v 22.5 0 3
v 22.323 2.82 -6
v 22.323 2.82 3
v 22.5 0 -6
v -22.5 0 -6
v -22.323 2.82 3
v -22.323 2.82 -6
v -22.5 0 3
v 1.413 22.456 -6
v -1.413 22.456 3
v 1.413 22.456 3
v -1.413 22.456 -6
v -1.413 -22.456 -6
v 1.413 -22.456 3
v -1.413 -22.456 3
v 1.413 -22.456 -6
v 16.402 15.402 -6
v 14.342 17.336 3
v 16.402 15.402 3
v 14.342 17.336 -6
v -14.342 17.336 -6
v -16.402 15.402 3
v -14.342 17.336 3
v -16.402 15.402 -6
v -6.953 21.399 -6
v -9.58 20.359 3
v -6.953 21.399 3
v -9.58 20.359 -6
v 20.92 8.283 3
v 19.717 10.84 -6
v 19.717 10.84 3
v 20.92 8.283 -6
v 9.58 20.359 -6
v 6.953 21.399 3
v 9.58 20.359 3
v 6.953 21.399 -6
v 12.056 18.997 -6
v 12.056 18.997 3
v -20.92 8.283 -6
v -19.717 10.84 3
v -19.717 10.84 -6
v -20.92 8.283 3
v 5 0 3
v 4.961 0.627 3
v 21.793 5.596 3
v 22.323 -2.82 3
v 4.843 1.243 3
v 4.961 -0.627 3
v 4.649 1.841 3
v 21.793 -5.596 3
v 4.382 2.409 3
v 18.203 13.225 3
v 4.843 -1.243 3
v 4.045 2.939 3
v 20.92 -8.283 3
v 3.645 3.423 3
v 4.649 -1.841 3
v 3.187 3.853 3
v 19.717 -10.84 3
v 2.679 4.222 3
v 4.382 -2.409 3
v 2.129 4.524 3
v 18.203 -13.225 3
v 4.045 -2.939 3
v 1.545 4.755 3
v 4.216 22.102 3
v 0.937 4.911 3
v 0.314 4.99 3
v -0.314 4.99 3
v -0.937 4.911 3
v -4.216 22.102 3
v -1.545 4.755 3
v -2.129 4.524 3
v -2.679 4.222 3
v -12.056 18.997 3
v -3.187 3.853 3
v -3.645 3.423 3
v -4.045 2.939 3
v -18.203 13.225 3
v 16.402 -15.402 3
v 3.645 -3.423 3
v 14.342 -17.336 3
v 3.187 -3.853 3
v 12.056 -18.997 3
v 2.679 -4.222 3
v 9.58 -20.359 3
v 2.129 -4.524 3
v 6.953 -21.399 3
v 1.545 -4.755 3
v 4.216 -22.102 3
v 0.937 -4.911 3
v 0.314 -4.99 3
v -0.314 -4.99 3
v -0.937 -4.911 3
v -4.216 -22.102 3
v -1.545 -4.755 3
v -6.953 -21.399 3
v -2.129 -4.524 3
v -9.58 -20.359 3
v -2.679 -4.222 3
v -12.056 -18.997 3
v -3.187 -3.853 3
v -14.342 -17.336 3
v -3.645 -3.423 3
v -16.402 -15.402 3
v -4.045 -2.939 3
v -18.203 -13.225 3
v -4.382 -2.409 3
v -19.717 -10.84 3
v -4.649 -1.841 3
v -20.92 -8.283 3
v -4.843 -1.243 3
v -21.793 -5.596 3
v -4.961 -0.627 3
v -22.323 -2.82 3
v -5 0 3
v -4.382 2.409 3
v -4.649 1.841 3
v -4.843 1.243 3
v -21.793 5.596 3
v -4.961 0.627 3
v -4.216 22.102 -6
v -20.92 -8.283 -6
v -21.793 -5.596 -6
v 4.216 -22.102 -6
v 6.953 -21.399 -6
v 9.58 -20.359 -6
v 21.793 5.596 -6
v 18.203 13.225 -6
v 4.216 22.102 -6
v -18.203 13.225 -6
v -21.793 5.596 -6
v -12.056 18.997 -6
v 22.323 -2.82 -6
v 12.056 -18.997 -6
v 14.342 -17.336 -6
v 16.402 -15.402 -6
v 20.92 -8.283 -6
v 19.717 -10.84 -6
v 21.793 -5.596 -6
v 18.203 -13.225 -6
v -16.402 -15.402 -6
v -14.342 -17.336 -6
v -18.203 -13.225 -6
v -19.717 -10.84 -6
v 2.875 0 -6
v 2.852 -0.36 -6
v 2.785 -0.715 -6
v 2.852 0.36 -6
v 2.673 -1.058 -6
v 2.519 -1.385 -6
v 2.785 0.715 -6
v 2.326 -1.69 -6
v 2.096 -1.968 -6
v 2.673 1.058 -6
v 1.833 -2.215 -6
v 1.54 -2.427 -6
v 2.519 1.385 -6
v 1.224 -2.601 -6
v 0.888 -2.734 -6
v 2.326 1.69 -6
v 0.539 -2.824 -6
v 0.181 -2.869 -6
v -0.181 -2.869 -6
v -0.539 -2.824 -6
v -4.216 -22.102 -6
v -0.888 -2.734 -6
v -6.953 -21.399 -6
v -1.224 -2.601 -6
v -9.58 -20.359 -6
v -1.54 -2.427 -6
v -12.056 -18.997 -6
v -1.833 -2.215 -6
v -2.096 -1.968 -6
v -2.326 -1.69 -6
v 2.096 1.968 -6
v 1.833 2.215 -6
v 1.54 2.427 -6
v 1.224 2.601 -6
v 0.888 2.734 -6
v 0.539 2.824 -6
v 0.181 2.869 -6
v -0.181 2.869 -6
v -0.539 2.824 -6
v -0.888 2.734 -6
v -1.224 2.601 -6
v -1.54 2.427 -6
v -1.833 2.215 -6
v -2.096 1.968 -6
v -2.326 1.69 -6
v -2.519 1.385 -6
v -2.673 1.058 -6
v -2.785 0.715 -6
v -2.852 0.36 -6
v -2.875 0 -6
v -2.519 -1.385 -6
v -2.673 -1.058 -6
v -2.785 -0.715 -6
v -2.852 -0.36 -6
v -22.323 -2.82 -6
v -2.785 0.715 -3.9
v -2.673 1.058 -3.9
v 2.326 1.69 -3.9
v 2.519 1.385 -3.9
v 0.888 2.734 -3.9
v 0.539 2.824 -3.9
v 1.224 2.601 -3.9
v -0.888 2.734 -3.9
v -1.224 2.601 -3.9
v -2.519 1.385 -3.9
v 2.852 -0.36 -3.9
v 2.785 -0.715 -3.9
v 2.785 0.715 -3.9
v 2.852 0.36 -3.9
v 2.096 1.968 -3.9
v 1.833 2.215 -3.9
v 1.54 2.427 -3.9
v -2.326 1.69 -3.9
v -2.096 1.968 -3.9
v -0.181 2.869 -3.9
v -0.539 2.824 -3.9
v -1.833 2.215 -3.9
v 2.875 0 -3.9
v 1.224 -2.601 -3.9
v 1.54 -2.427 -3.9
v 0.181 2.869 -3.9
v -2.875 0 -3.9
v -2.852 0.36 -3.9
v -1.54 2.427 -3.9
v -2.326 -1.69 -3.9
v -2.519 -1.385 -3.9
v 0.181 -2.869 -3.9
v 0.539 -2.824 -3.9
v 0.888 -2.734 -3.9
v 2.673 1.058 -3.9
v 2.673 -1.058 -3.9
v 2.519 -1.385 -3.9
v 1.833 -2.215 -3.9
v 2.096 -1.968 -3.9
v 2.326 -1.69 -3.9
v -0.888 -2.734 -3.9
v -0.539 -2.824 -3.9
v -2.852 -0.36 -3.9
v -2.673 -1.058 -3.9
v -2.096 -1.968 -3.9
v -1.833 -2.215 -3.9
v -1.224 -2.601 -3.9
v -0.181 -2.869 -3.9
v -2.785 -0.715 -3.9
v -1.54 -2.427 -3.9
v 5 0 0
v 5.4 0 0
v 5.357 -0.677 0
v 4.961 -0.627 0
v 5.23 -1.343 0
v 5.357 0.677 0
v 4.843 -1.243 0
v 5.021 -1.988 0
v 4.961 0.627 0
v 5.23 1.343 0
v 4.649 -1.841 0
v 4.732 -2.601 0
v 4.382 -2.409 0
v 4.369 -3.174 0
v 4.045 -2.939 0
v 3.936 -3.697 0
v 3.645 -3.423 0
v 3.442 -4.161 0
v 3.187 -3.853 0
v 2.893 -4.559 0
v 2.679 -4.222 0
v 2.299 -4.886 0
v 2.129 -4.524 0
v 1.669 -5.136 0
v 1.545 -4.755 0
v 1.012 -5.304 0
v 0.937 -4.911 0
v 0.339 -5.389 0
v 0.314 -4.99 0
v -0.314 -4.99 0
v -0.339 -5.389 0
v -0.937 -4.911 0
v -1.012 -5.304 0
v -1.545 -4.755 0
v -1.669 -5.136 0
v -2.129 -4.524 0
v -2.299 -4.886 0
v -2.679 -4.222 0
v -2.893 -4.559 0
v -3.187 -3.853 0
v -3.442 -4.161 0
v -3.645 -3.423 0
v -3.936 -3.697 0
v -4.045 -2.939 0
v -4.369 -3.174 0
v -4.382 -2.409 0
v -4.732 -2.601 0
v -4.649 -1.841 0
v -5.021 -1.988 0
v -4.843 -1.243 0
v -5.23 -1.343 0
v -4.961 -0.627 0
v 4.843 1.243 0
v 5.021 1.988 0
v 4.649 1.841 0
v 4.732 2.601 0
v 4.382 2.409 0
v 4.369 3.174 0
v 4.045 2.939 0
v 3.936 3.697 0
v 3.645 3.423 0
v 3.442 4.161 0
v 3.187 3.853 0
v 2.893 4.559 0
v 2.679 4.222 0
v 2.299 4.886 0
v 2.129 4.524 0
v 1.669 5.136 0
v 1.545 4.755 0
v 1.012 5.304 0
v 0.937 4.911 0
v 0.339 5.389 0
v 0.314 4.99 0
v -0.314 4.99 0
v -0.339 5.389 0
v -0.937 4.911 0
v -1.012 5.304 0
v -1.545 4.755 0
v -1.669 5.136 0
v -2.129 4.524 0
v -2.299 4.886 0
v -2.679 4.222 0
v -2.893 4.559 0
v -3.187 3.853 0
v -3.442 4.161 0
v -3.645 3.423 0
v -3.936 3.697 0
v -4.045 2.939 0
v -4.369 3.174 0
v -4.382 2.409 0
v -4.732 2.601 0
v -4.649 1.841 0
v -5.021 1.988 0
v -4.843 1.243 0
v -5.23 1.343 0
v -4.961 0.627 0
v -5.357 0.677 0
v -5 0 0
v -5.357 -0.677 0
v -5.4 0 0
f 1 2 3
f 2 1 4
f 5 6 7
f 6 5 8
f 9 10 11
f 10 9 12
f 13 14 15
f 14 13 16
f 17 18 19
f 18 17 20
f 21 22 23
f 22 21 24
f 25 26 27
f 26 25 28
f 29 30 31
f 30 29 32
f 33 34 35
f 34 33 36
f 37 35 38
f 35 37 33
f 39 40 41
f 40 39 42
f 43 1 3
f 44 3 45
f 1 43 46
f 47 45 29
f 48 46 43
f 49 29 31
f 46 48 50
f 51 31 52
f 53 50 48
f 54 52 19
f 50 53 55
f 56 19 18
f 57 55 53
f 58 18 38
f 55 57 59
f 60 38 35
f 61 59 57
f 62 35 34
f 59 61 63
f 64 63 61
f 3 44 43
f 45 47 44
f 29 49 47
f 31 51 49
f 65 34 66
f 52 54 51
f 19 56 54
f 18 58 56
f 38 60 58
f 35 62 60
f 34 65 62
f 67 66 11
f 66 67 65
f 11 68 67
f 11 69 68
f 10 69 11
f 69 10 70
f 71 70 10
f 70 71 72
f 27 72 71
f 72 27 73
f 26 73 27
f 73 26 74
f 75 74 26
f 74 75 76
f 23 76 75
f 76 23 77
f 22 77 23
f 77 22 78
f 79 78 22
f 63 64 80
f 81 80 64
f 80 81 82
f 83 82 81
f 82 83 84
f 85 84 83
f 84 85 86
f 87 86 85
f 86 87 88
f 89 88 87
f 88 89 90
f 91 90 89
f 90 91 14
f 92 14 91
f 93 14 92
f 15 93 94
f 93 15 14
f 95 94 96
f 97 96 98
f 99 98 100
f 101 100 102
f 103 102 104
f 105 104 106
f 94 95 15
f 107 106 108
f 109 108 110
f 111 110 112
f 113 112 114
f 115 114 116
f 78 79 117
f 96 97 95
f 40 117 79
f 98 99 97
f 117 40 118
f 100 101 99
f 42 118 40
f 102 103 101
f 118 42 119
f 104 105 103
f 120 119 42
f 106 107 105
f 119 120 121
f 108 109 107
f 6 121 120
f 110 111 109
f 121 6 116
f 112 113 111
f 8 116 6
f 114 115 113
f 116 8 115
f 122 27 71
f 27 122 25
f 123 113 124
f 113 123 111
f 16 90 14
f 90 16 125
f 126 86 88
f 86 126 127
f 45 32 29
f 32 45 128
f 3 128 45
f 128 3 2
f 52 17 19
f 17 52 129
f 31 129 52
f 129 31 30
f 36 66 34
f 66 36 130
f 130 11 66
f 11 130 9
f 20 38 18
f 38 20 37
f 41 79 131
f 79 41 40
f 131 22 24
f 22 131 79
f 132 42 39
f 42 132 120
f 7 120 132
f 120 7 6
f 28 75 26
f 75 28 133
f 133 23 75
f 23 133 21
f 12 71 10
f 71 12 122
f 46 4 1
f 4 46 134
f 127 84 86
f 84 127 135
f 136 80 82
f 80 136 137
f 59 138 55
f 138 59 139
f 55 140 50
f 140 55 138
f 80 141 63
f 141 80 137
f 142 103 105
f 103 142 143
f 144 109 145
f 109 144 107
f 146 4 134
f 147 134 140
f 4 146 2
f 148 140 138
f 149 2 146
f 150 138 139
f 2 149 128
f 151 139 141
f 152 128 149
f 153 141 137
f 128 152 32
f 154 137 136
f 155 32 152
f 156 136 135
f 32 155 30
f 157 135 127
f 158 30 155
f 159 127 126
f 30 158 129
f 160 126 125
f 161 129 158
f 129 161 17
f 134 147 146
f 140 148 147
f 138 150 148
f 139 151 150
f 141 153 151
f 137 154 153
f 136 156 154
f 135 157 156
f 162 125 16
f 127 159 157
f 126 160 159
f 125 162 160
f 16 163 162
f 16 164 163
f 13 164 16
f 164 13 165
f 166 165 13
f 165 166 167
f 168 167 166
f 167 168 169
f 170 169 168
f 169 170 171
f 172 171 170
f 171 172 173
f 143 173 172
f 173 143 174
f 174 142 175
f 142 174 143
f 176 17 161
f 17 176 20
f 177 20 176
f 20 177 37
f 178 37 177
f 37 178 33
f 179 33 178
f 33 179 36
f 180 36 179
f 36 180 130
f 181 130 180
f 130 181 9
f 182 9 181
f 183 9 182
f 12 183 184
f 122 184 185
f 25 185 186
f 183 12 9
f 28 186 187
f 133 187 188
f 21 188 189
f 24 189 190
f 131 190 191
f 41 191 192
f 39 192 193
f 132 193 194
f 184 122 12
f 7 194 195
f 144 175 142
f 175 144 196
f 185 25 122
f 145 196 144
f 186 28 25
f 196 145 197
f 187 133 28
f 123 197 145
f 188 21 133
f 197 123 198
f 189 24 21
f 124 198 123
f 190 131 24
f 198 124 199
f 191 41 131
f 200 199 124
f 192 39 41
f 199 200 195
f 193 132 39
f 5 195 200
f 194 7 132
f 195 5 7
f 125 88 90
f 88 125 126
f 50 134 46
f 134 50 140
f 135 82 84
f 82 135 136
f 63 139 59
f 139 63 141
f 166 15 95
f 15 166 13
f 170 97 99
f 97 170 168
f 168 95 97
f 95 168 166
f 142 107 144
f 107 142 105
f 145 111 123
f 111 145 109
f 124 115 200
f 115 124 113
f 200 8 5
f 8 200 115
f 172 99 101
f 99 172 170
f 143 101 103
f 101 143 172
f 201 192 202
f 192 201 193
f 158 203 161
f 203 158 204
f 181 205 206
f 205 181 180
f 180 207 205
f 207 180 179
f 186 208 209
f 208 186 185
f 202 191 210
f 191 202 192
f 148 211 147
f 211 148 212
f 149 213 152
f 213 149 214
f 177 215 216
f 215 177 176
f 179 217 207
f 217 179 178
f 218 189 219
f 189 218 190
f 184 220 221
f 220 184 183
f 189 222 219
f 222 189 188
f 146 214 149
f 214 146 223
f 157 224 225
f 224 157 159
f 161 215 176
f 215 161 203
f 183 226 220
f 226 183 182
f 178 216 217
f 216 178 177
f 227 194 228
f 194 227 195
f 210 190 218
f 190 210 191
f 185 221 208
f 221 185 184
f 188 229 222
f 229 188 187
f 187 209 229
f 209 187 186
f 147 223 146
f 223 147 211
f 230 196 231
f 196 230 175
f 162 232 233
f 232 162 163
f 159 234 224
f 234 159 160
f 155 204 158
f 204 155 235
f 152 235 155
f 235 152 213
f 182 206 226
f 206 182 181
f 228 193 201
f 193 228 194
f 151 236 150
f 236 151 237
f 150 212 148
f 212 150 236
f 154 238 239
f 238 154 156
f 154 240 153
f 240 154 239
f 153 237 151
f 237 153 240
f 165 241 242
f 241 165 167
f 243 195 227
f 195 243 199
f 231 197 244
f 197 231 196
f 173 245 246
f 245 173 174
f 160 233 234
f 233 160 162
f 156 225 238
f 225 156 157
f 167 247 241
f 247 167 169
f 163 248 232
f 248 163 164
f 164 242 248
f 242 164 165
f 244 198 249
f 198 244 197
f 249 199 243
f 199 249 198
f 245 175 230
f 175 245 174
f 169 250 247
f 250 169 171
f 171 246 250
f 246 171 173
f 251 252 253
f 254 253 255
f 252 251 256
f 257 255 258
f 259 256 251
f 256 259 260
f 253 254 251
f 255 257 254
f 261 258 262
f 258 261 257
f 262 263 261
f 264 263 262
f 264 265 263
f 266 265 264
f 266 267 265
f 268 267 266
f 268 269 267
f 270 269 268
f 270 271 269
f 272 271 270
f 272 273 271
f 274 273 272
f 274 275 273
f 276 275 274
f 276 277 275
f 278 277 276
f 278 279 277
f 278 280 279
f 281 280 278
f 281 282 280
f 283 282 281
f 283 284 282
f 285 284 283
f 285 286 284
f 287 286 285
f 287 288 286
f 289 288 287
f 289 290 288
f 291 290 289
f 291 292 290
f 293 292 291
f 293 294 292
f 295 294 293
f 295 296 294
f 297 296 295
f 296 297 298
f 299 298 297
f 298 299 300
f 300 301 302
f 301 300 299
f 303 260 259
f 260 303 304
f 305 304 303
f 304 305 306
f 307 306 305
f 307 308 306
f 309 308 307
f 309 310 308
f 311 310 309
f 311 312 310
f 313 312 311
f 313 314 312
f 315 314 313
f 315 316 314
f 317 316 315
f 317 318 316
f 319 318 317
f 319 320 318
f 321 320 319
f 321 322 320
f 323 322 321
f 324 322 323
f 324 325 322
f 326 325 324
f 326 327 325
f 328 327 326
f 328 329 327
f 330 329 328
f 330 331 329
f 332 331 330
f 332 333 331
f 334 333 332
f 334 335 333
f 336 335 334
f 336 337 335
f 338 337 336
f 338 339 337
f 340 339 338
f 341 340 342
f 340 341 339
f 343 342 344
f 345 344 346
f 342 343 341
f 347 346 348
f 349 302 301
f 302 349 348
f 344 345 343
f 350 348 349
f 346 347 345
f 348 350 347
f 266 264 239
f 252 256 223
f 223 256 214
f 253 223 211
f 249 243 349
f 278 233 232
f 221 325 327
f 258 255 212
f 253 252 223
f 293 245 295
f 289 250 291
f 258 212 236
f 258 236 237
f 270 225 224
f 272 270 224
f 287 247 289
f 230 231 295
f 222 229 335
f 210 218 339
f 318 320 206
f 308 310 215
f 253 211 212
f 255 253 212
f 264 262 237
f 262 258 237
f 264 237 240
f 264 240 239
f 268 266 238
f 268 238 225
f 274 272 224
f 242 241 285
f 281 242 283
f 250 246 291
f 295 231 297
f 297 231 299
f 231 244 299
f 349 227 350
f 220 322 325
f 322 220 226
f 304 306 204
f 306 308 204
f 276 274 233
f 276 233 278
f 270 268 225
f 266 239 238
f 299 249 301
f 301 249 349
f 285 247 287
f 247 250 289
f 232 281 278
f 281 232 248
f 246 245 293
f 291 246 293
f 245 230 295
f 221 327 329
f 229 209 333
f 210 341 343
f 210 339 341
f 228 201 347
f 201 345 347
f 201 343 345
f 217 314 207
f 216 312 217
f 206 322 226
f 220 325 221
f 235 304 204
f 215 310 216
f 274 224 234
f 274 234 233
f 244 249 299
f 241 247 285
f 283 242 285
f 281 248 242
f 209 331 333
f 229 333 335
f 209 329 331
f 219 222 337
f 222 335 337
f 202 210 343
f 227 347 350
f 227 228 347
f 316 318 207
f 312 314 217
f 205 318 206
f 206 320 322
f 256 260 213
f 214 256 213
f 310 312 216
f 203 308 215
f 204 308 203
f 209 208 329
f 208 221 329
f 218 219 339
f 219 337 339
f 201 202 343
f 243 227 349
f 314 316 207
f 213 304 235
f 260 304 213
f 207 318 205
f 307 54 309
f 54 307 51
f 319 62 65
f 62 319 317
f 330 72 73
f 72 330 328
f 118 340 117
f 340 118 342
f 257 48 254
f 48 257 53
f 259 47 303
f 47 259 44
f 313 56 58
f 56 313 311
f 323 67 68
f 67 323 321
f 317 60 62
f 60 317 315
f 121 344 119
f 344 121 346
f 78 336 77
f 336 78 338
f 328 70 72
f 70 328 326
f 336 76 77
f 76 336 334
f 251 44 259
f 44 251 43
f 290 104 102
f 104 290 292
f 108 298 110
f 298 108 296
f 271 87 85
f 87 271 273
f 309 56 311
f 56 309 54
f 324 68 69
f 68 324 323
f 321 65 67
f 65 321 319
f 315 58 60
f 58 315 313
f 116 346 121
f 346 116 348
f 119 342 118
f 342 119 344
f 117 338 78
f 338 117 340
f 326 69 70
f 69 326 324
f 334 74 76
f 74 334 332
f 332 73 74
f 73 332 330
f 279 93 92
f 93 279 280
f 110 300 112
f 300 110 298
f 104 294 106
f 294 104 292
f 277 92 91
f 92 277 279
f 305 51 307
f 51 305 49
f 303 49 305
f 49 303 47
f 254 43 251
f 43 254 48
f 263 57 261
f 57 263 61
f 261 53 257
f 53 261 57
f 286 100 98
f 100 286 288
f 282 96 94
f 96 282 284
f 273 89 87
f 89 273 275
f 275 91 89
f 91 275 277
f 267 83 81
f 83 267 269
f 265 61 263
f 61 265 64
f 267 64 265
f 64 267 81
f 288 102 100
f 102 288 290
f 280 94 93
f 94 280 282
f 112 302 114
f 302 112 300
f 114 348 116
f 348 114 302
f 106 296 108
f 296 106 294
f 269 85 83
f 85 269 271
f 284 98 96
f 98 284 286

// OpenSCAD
$fn = 50;

difference() {
	union() {
		translate(v = [0, 0, -6.0]) {
			cylinder(h = 9, r = 22.5);
		}
		#translate(v = [0, 0, -9.0]) {
			cylinder(h = 9, r = 2.875);
		}
	}
	union() {
		translate(v = [0, 0, 0]) {
			rotate(a = [0, 0, 0]) {
				difference() {
					union() {
						translate(v = [0, 0, -9.0]) {
							cylinder(h = 9, r = 2.6);
						}
						translate(v = [0, 0, -3.9]) {
							cylinder(h = 3.9, r1 = 2.875, r2 = 5.4);
						}
						translate(v = [0, 0, -9.0]) {
							cylinder(h = 9, r = 2.875);
						}
						translate(v = [0, 0, -9.0]) {
							cylinder(h = 9, r = 2.6);
						}
					}
					union();
				}
			}
		}
		#cylinder(h = 3, r = 5.0);
	}
}
